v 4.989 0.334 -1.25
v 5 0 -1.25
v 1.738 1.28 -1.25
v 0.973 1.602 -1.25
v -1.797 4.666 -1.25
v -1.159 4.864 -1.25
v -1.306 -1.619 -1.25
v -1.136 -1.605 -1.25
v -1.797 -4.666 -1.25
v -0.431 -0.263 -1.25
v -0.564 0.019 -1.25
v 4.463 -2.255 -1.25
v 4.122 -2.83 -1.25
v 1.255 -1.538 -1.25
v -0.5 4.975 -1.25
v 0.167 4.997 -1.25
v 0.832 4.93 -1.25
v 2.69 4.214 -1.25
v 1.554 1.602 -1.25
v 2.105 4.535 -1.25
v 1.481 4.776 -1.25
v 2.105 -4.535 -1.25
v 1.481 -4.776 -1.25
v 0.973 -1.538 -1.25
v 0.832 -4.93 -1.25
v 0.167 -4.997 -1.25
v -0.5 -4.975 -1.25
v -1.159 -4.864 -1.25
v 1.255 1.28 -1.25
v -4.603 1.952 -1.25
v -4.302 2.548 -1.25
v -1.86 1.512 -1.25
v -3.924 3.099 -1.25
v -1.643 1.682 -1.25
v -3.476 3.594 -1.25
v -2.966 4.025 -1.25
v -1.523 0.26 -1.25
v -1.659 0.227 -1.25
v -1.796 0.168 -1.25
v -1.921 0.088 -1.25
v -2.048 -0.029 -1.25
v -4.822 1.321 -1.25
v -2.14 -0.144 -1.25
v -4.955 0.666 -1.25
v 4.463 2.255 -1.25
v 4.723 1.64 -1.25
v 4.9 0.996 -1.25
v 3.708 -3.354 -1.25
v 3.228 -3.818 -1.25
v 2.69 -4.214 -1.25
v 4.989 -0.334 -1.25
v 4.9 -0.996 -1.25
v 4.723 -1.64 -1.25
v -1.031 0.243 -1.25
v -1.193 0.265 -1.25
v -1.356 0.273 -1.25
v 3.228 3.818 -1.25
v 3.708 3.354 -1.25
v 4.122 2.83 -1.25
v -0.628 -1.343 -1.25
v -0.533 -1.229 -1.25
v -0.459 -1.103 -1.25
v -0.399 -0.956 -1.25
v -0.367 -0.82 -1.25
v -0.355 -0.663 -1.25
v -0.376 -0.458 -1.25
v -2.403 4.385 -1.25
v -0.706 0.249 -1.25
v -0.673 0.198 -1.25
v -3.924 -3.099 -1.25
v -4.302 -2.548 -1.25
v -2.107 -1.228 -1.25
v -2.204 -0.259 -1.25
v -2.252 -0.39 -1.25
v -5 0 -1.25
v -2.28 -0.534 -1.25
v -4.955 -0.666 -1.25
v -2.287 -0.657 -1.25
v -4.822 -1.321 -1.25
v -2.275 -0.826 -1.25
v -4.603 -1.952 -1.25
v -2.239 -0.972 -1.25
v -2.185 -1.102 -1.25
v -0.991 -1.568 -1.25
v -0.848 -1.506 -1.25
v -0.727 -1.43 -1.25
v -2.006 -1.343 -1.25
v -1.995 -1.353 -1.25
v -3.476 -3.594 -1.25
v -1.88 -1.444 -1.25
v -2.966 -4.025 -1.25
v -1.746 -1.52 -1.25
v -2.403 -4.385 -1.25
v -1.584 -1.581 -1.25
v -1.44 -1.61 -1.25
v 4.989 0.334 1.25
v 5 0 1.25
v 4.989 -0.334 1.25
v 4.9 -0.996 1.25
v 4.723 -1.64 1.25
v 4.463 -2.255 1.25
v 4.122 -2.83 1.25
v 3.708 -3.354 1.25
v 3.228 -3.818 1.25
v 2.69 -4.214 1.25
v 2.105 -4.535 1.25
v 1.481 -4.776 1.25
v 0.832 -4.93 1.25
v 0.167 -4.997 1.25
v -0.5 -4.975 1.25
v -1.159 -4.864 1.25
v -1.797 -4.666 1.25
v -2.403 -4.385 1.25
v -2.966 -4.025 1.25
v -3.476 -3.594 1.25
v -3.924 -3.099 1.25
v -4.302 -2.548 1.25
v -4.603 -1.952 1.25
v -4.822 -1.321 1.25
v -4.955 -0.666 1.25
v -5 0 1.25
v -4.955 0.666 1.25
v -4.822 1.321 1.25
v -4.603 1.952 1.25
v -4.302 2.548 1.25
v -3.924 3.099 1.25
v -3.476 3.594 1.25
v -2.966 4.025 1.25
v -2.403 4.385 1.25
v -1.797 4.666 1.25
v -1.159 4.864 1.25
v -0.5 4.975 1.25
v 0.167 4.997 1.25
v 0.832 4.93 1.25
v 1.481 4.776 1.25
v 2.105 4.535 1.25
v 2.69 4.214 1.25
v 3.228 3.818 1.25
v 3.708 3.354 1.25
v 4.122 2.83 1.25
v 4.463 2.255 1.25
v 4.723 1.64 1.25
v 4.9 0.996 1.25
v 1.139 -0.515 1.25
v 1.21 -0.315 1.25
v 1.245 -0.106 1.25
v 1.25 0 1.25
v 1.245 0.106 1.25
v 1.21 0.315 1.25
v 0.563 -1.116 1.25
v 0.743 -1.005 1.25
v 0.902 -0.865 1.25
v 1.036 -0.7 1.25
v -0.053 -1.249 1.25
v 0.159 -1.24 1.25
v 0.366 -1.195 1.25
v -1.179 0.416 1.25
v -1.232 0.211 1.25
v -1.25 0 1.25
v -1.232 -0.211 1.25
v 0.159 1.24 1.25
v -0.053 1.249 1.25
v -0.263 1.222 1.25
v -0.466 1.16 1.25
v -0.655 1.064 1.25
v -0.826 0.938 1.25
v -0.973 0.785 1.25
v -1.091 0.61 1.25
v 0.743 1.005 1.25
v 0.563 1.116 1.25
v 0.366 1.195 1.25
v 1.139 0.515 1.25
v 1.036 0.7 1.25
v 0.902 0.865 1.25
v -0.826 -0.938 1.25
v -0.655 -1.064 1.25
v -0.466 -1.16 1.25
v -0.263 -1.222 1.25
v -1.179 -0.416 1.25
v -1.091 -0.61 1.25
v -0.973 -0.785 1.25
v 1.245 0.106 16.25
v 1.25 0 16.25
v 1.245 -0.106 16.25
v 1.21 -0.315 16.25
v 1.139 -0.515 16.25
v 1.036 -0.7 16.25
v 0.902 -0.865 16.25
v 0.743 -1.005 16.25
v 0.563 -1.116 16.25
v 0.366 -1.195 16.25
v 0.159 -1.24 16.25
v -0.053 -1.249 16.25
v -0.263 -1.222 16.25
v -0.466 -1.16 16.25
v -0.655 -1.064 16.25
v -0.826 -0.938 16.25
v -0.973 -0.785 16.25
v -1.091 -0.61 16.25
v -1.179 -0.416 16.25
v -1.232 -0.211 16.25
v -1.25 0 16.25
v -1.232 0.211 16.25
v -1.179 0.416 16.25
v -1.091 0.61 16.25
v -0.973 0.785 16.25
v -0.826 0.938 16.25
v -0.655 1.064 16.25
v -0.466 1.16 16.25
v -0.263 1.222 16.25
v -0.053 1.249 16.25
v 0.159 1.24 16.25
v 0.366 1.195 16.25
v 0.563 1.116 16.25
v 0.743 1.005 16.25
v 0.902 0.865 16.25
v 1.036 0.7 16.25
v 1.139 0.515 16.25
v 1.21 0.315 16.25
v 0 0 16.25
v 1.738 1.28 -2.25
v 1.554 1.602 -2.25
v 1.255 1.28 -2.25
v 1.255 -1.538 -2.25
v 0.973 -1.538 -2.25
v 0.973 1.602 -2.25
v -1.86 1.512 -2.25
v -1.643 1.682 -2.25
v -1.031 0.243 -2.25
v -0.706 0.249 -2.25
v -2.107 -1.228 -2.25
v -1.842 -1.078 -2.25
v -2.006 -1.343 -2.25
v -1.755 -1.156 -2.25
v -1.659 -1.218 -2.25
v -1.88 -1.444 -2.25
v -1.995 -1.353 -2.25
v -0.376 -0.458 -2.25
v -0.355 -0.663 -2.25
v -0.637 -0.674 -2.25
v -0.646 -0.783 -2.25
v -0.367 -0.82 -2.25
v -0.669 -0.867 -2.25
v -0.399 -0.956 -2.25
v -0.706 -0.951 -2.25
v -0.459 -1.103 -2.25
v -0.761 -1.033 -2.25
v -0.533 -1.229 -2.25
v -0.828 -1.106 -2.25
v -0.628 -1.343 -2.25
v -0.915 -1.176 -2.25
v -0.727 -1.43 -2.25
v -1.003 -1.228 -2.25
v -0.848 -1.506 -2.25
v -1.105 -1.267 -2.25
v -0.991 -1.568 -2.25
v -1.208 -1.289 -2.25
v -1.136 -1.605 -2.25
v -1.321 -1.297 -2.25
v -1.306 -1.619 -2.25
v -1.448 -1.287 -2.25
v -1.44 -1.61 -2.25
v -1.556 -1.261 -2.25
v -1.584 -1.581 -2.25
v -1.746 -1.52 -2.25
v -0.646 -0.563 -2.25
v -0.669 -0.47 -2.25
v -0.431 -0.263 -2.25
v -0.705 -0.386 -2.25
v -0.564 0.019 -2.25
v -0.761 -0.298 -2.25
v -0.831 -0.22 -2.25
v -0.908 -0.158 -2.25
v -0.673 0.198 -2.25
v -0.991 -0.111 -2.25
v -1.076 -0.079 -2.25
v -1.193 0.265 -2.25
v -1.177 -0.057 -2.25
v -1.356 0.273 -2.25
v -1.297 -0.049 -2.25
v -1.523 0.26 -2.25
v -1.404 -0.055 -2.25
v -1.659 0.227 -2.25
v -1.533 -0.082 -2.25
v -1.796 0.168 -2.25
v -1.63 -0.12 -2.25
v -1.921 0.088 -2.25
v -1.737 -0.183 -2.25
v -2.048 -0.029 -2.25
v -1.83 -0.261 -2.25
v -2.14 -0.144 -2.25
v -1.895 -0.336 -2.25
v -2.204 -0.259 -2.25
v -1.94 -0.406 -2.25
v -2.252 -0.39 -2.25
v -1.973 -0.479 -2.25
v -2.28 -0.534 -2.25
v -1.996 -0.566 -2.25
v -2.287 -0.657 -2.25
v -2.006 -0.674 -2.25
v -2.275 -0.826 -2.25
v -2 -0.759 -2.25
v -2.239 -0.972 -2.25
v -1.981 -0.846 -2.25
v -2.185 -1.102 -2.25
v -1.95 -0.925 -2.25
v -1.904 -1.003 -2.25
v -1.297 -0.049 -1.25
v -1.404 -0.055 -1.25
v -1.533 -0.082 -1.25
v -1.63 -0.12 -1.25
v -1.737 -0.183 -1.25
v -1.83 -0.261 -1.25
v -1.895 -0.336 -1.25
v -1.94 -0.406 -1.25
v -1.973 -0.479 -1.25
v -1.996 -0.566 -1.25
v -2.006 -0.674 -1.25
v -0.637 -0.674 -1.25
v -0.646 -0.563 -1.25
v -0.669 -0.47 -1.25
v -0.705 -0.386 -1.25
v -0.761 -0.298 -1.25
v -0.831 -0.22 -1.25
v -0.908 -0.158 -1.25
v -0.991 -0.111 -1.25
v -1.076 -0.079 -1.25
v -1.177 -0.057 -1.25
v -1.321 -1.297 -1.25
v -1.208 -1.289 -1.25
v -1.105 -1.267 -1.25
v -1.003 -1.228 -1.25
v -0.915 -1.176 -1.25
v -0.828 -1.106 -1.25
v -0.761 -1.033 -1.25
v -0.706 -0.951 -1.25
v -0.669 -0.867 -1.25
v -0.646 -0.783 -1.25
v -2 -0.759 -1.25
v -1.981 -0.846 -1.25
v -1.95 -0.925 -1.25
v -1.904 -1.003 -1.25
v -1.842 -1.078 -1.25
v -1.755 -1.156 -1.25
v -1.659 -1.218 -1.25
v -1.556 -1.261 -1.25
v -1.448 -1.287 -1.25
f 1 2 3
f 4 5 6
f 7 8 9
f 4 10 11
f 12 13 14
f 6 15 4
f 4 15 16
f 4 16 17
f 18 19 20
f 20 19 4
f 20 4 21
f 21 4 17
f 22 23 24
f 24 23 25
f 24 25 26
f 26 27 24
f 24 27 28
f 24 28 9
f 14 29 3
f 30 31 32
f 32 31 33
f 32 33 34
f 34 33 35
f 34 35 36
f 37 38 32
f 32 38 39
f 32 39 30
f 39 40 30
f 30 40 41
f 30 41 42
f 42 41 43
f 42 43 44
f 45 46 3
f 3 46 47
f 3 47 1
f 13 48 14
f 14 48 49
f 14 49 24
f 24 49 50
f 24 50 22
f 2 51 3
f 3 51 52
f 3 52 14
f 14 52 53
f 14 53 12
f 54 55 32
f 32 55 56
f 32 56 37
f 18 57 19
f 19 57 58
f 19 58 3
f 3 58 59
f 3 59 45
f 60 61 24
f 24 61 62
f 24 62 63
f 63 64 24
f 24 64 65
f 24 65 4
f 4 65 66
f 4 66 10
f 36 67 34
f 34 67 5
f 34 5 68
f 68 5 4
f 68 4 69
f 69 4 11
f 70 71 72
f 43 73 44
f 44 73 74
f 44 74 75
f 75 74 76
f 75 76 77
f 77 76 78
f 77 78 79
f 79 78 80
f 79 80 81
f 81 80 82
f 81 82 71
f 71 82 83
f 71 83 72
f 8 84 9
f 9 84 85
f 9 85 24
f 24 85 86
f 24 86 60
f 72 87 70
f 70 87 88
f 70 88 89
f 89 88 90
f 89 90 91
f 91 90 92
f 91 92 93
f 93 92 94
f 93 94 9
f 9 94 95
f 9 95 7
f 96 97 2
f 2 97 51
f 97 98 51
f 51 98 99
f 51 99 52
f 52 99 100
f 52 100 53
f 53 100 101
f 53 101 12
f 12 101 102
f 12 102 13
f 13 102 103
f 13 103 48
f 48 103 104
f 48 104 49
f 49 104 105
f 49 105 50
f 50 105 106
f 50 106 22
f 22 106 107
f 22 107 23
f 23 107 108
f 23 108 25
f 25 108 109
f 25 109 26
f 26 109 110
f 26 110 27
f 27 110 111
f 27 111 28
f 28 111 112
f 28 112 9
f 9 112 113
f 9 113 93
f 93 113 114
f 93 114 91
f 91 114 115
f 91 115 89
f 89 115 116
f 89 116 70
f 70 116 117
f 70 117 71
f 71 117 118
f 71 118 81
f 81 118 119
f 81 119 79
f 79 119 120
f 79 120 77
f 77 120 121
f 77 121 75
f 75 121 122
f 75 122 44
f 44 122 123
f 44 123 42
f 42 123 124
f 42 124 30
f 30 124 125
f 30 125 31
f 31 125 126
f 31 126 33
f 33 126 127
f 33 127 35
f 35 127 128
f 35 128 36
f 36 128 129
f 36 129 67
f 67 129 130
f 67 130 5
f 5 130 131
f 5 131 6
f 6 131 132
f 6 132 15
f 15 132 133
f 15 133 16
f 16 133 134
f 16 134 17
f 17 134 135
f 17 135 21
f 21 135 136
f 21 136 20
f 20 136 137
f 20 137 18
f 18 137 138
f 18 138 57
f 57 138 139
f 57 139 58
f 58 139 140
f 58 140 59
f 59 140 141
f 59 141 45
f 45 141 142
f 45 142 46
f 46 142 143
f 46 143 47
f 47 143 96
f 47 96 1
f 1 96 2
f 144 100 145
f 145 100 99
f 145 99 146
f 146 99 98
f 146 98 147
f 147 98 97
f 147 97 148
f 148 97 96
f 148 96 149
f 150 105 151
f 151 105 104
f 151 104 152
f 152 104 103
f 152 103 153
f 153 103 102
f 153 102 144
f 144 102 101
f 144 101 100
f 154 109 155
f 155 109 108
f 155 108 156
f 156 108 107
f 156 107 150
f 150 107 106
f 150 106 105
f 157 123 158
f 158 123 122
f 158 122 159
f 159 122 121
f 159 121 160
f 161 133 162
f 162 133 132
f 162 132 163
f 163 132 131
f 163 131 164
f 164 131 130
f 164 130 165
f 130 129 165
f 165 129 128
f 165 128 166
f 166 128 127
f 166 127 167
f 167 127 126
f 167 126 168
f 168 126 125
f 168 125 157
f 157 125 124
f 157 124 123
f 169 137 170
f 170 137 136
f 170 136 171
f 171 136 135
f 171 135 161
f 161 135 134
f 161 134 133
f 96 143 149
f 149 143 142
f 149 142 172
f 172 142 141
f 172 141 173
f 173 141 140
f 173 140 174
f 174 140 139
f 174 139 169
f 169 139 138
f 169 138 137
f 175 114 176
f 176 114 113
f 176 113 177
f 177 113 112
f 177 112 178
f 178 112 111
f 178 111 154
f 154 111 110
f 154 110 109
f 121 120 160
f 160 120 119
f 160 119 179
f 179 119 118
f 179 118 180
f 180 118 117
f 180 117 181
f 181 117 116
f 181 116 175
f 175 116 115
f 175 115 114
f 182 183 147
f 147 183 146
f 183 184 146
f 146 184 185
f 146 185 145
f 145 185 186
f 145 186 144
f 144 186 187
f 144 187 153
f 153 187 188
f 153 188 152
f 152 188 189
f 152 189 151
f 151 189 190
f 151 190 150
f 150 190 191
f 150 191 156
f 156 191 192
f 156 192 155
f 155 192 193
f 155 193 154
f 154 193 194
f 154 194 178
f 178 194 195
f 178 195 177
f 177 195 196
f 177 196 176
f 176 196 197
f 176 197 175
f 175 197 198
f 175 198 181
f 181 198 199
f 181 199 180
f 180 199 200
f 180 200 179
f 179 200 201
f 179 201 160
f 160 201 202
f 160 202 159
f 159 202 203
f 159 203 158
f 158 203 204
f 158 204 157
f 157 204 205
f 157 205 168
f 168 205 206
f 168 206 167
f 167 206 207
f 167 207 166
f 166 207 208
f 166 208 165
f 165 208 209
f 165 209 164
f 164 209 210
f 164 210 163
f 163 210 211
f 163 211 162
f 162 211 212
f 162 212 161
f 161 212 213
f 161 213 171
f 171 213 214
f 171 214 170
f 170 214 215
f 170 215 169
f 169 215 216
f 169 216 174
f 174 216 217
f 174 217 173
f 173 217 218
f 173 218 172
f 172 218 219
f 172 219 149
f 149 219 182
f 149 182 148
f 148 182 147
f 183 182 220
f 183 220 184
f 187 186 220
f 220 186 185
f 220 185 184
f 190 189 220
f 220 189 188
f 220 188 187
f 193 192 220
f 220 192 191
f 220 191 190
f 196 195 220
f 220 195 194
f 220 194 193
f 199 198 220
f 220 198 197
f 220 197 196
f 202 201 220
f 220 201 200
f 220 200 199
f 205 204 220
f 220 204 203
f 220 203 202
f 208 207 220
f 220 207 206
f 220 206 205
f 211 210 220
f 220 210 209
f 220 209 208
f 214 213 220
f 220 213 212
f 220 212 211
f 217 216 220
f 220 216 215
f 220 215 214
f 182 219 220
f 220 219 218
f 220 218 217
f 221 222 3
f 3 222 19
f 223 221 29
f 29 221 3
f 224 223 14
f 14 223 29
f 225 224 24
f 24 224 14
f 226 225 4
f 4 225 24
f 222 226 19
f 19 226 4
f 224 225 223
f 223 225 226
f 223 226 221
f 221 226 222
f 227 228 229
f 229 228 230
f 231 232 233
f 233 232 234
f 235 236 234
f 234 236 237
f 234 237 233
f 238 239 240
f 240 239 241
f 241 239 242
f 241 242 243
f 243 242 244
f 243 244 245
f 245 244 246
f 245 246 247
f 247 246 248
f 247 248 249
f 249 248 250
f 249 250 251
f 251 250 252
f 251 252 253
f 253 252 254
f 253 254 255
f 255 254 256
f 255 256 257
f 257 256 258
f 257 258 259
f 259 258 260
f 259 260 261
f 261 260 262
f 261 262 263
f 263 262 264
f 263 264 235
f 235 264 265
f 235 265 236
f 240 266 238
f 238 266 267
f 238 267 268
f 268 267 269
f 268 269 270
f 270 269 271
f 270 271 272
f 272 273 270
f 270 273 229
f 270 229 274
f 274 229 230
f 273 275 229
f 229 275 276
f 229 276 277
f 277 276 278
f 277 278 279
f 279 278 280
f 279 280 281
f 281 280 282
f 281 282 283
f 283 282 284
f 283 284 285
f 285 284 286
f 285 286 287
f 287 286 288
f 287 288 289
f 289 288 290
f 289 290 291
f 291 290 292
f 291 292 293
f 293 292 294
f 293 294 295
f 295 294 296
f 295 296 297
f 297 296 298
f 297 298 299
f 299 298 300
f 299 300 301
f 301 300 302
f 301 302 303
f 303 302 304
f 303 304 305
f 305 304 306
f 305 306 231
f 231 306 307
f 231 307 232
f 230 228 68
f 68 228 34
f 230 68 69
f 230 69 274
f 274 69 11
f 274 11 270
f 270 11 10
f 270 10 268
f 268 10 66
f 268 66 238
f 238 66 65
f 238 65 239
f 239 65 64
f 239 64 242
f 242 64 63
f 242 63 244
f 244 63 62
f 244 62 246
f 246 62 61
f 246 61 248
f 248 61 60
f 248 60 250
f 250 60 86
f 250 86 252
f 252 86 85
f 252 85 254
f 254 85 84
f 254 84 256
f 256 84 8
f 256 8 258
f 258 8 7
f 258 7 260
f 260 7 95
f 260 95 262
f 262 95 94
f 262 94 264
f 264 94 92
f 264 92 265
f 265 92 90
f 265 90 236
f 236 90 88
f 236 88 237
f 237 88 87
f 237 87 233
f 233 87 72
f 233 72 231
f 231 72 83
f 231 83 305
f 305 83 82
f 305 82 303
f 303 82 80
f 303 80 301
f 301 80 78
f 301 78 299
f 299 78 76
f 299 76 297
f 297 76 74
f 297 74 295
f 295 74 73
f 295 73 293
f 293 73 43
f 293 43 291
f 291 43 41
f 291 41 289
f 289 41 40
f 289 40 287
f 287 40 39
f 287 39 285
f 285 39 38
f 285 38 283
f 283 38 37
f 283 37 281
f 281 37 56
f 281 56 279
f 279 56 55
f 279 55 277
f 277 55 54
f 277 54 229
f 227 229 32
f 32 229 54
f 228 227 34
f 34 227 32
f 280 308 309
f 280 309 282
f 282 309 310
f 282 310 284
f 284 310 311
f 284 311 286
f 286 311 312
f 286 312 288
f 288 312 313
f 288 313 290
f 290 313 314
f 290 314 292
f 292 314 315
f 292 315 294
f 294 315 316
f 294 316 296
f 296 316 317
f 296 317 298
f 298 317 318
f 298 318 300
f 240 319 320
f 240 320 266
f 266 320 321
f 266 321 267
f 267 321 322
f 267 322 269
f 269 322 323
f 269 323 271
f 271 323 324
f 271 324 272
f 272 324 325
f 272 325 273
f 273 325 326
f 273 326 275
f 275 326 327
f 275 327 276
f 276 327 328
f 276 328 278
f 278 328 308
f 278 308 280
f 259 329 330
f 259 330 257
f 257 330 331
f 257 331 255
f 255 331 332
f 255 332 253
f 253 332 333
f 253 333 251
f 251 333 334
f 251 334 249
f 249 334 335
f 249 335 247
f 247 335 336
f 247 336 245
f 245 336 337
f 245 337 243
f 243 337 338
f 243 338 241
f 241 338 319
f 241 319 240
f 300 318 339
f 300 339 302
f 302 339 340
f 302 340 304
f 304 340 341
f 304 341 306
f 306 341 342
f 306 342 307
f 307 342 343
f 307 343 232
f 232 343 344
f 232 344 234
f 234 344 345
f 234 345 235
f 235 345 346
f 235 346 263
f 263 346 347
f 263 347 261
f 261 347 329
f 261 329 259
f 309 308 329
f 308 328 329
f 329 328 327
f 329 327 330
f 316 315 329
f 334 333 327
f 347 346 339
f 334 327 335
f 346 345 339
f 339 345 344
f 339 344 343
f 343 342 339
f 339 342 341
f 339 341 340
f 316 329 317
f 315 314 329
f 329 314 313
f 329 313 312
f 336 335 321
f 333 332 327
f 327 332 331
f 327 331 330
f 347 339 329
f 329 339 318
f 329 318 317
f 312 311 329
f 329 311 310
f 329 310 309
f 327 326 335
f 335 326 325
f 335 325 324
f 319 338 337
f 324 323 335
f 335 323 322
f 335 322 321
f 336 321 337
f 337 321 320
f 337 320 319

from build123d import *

# Parameters (mm, degrees)
SKETCH1_R           = 5
BOSS_EXTRUDE1_DEPTH = 1.25
SKETCH2_R           = 1.25
BOSS_EXTRUDE2_DEPTH = 15
BOSS_EXTRUDE3_DEPTH = 1


with BuildPart() as part:
    # Sketch1 → Boss-Extrude1 (new, symmetric)
    with BuildSketch(Plane.XY):
        Circle(SKETCH1_R)
    extrude(amount=BOSS_EXTRUDE1_DEPTH, both=True)

    # Sketch2 → Boss-Extrude2 (add)
    with BuildSketch(Plane.XY.offset(1.25)):
        Circle(SKETCH2_R)
    extrude(amount=BOSS_EXTRUDE2_DEPTH)

    # Sketch4 → Boss-Extrude3 (add)
    # profile 1 of 2: a face of its own
    with BuildSketch(Plane(origin=(0, 0, -1.25), x_dir=(-1, 0, 0), z_dir=(0, 0, -1))):
        Polygon((-1.553943212, 1.601672339), (-0.973370295, 1.601672339), (-0.973370295, -1.538327661), (-1.255165167, -1.538327661), (-1.255165167, 1.279621057), (-1.73824209, 1.279621057), align=None)
    # profile 2 of 2: a face of its own
    with BuildSketch(Plane(origin=(0, 0, -1.25), x_dir=(-1, 0, 0), z_dir=(0, 0, -1))):
        with BuildLine():
            Line((1.643296371, 1.68218516), (1.860303583, 1.511724423))
            Line((1.860303583, 1.511724423), (1.030644128, 0.243018493))
            add(Edge.make_bspline(
                [(1.030644128, 0.243018493), (1.085881462, 0.251822928), (1.193628128, 0.268996974), (1.302690105, 0.271830102), (1.355840442, 0.273210801)],
                knots=[0, 0, 0, 0, 1.025318673, 2, 2, 2, 2], degree=3))
            add(Edge.make_bspline(
                [(1.355840442, 0.273210801), (1.387754053, 0.272353032), (1.450575046, 0.27066454), (1.542807435, 0.257670457), (1.631435223, 0.23719307), (1.716091069, 0.207343104), (1.79707883, 0.16921242), (1.874863266, 0.123512976), (1.947982212, 0.067885023), (2.01737727, 0.005744463), (2.080381009, -0.063081632), (2.136161813, -0.13611026), (2.183016706, -0.213265336), (2.221032167, -0.294507781), (2.250552544, -0.379712363), (2.272072888, -0.468770065), (2.284794009, -0.561742299), (2.286521449, -0.624971291), (2.287398935, -0.65708968)],
                knots=[0, 0, 0, 0, 1.04369286, 2.054478336, 3.041073146, 4.015093852, 4.984733326, 5.965804835, 6.960378782, 7.985147595, 9.009457201, 10.008161701, 10.986880575, 11.956520048, 12.937015923, 13.931873656, 14.949455224, 16, 16, 16, 16], degree=3))
            add(Edge.make_bspline(
                [(2.287398935, -0.65708968), (2.286122207, -0.701031472), (2.283609908, -0.787498518), (2.258576216, -0.913436478), (2.219676421, -1.033413649), (2.164073724, -1.145514494), (2.095009529, -1.249585371), (2.010787917, -1.341798617), (1.914395759, -1.424039736), (1.805404746, -1.492811674), (1.68810963, -1.548975554), (1.564885266, -1.5893158), (1.436928341, -1.614151827), (1.350080778, -1.617265453), (1.306148935, -1.618840481)],
                knots=[0, 0, 0, 0, 1.031375318, 2.029502543, 3.004789286, 3.987476834, 4.960371455, 5.9300674, 6.912260825, 7.929083631, 8.949397511, 9.960523116, 10.96833055, 12, 12, 12, 12], degree=3))
            add(Edge.make_bspline(
                [(1.306148935, -1.618840481), (1.263896467, -1.617469462), (1.180201724, -1.614753714), (1.057084303, -1.590561416), (0.938784339, -1.5513499), (0.826130666, -1.497329091), (0.721774459, -1.429094304), (0.628412717, -1.346949859), (0.546510953, -1.252651654), (0.478350865, -1.146214313), (0.424290174, -1.031837609), (0.383748355, -0.912573988), (0.360067154, -0.788858005), (0.356757992, -0.704992069), (0.355091243, -0.662750738)],
                knots=[0, 0, 0, 0, 1.012016664, 2.004627821, 2.994792927, 3.992885782, 4.990978636, 5.973936114, 6.964471063, 7.975201453, 8.993600317, 9.990122807, 10.98767138, 12, 12, 12, 12], degree=3))
            add(Edge.make_bspline(
                [(0.355091243, -0.662750738), (0.356151168, -0.630413597), (0.358315332, -0.564387335), (0.37342626, -0.464388179), (0.397707247, -0.362068065), (0.424899868, -0.275265732), (0.453631415, -0.204156823), (0.477542551, -0.146826263), (0.507304364, -0.087829186), (0.539039341, -0.025142553), (0.575604074, 0.039618093), (0.615361543, 0.107535099), (0.659410944, 0.177528325), (0.690290747, 0.225026832), (0.70607682, 0.249308557)],
                knots=[0, 0, 0, 0, 1.173818275, 2.396712641, 3.66331629, 4.989737886, 5.693666774, 6.447286557, 7.243889047, 8.091586357, 8.998013824, 9.943181721, 10.948533338, 12, 12, 12, 12], degree=3))
            Line((0.70607682, 0.249308557), (1.643296371, 1.68218516))
        make_face()
        with BuildLine():
            add(Edge.make_bspline(
                [(1.296713839, -0.048840481), (1.272793997, -0.049538498), (1.226071596, -0.050901926), (1.157523229, -0.058819438), (1.092647912, -0.073729114), (1.030586141, -0.092718337), (0.972498202, -0.11882794), (0.917961928, -0.150543554), (0.866766425, -0.187883696), (0.819447924, -0.230319371), (0.776546855, -0.276780635), (0.739601497, -0.32654472), (0.70773283, -0.37841232), (0.681821712, -0.432816805), (0.661644901, -0.489737379), (0.647049956, -0.548912248), (0.638927448, -0.610738226), (0.637576143, -0.652663957), (0.636886115, -0.674072853)],
                knots=[0, 0, 0, 0, 1.129588631, 2.206414736, 3.251139165, 4.268635594, 5.265702196, 6.250456724, 7.242448911, 8.251968645, 9.246821453, 10.222880186, 11.173611482, 12.116736599, 13.062300278, 14.020270554, 14.989073742, 16, 16, 16, 16], degree=3))
            add(Edge.make_bspline(
                [(0.636886115, -0.674072853), (0.637448051, -0.695290264), (0.638549923, -0.736894447), (0.648555147, -0.798204454), (0.66383805, -0.857204972), (0.686572005, -0.913591834), (0.713689841, -0.968224531), (0.749490618, -1.019124187), (0.789159392, -1.069382193), (0.83657692, -1.115137799), (0.88746588, -1.15771317), (0.941833816, -1.194926883), (0.998497323, -1.22676305), (1.058221399, -1.251713578), (1.120158692, -1.272190224), (1.184825246, -1.286599665), (1.252266037, -1.294746194), (1.29795029, -1.296099259), (1.321245089, -1.296789199)],
                knots=[0, 0, 0, 0, 0.989467248, 1.94019797, 2.891935182, 3.827694429, 4.772920941, 5.730924762, 6.725747692, 7.756678648, 8.79901574, 9.819492441, 10.826891316, 11.826466727, 12.835195252, 13.867842842, 14.912794438, 16, 16, 16, 16], degree=3))
            add(Edge.make_bspline(
                [(1.321245089, -1.296789199), (1.344539851, -1.296099205), (1.390224029, -1.294746034), (1.457665362, -1.286600274), (1.522329911, -1.27218799), (1.584274493, -1.251721676), (1.643971662, -1.226733009), (1.700585612, -1.195124944), (1.754439388, -1.157484313), (1.805361754, -1.115210557), (1.852581916, -1.06912177), (1.893202103, -1.019572819), (1.92790649, -0.967813153), (1.956107446, -0.913807046), (1.978591005, -0.857170877), (1.993951407, -0.798213588), (2.003935969, -0.736892056), (2.00504068, -0.695289456), (2.005604064, -0.674072853)],
                knots=[0, 0, 0, 0, 1.087397944, 2.132534446, 3.165364764, 4.174271784, 5.174024072, 6.181601208, 7.194203697, 8.236725232, 9.267838612, 10.269026844, 11.221737037, 12.171628256, 13.107553087, 14.05945871, 15.010357665, 16, 16, 16, 16], degree=3))
            add(Edge.make_bspline(
                [(2.005604064, -0.674072853), (2.005110372, -0.652636027), (2.004141416, -0.61056251), (1.993181965, -0.548939904), (1.977982236, -0.489436719), (1.955030603, -0.432426925), (1.925212674, -0.378135493), (1.888893274, -0.326288171), (1.846877768, -0.276487459), (1.798344547, -0.230228254), (1.745511594, -0.18793059), (1.689336469, -0.150591902), (1.630566459, -0.11907978), (1.56926115, -0.092787123), (1.504718107, -0.073813023), (1.437979346, -0.058872685), (1.368191282, -0.050922189), (1.320843125, -0.049543222), (1.296713839, -0.048840481)],
                knots=[0, 0, 0, 0, 0.978206639, 1.919901502, 2.851605144, 3.780102724, 4.718870031, 5.675451981, 6.667674623, 7.690630536, 8.733308323, 9.756129687, 10.767539656, 11.776269907, 12.797430371, 13.836405707, 14.897401972, 16, 16, 16, 16], degree=3))
        make_face(mode=Mode.SUBTRACT)
    extrude(amount=BOSS_EXTRUDE3_DEPTH)


solid = part.part
